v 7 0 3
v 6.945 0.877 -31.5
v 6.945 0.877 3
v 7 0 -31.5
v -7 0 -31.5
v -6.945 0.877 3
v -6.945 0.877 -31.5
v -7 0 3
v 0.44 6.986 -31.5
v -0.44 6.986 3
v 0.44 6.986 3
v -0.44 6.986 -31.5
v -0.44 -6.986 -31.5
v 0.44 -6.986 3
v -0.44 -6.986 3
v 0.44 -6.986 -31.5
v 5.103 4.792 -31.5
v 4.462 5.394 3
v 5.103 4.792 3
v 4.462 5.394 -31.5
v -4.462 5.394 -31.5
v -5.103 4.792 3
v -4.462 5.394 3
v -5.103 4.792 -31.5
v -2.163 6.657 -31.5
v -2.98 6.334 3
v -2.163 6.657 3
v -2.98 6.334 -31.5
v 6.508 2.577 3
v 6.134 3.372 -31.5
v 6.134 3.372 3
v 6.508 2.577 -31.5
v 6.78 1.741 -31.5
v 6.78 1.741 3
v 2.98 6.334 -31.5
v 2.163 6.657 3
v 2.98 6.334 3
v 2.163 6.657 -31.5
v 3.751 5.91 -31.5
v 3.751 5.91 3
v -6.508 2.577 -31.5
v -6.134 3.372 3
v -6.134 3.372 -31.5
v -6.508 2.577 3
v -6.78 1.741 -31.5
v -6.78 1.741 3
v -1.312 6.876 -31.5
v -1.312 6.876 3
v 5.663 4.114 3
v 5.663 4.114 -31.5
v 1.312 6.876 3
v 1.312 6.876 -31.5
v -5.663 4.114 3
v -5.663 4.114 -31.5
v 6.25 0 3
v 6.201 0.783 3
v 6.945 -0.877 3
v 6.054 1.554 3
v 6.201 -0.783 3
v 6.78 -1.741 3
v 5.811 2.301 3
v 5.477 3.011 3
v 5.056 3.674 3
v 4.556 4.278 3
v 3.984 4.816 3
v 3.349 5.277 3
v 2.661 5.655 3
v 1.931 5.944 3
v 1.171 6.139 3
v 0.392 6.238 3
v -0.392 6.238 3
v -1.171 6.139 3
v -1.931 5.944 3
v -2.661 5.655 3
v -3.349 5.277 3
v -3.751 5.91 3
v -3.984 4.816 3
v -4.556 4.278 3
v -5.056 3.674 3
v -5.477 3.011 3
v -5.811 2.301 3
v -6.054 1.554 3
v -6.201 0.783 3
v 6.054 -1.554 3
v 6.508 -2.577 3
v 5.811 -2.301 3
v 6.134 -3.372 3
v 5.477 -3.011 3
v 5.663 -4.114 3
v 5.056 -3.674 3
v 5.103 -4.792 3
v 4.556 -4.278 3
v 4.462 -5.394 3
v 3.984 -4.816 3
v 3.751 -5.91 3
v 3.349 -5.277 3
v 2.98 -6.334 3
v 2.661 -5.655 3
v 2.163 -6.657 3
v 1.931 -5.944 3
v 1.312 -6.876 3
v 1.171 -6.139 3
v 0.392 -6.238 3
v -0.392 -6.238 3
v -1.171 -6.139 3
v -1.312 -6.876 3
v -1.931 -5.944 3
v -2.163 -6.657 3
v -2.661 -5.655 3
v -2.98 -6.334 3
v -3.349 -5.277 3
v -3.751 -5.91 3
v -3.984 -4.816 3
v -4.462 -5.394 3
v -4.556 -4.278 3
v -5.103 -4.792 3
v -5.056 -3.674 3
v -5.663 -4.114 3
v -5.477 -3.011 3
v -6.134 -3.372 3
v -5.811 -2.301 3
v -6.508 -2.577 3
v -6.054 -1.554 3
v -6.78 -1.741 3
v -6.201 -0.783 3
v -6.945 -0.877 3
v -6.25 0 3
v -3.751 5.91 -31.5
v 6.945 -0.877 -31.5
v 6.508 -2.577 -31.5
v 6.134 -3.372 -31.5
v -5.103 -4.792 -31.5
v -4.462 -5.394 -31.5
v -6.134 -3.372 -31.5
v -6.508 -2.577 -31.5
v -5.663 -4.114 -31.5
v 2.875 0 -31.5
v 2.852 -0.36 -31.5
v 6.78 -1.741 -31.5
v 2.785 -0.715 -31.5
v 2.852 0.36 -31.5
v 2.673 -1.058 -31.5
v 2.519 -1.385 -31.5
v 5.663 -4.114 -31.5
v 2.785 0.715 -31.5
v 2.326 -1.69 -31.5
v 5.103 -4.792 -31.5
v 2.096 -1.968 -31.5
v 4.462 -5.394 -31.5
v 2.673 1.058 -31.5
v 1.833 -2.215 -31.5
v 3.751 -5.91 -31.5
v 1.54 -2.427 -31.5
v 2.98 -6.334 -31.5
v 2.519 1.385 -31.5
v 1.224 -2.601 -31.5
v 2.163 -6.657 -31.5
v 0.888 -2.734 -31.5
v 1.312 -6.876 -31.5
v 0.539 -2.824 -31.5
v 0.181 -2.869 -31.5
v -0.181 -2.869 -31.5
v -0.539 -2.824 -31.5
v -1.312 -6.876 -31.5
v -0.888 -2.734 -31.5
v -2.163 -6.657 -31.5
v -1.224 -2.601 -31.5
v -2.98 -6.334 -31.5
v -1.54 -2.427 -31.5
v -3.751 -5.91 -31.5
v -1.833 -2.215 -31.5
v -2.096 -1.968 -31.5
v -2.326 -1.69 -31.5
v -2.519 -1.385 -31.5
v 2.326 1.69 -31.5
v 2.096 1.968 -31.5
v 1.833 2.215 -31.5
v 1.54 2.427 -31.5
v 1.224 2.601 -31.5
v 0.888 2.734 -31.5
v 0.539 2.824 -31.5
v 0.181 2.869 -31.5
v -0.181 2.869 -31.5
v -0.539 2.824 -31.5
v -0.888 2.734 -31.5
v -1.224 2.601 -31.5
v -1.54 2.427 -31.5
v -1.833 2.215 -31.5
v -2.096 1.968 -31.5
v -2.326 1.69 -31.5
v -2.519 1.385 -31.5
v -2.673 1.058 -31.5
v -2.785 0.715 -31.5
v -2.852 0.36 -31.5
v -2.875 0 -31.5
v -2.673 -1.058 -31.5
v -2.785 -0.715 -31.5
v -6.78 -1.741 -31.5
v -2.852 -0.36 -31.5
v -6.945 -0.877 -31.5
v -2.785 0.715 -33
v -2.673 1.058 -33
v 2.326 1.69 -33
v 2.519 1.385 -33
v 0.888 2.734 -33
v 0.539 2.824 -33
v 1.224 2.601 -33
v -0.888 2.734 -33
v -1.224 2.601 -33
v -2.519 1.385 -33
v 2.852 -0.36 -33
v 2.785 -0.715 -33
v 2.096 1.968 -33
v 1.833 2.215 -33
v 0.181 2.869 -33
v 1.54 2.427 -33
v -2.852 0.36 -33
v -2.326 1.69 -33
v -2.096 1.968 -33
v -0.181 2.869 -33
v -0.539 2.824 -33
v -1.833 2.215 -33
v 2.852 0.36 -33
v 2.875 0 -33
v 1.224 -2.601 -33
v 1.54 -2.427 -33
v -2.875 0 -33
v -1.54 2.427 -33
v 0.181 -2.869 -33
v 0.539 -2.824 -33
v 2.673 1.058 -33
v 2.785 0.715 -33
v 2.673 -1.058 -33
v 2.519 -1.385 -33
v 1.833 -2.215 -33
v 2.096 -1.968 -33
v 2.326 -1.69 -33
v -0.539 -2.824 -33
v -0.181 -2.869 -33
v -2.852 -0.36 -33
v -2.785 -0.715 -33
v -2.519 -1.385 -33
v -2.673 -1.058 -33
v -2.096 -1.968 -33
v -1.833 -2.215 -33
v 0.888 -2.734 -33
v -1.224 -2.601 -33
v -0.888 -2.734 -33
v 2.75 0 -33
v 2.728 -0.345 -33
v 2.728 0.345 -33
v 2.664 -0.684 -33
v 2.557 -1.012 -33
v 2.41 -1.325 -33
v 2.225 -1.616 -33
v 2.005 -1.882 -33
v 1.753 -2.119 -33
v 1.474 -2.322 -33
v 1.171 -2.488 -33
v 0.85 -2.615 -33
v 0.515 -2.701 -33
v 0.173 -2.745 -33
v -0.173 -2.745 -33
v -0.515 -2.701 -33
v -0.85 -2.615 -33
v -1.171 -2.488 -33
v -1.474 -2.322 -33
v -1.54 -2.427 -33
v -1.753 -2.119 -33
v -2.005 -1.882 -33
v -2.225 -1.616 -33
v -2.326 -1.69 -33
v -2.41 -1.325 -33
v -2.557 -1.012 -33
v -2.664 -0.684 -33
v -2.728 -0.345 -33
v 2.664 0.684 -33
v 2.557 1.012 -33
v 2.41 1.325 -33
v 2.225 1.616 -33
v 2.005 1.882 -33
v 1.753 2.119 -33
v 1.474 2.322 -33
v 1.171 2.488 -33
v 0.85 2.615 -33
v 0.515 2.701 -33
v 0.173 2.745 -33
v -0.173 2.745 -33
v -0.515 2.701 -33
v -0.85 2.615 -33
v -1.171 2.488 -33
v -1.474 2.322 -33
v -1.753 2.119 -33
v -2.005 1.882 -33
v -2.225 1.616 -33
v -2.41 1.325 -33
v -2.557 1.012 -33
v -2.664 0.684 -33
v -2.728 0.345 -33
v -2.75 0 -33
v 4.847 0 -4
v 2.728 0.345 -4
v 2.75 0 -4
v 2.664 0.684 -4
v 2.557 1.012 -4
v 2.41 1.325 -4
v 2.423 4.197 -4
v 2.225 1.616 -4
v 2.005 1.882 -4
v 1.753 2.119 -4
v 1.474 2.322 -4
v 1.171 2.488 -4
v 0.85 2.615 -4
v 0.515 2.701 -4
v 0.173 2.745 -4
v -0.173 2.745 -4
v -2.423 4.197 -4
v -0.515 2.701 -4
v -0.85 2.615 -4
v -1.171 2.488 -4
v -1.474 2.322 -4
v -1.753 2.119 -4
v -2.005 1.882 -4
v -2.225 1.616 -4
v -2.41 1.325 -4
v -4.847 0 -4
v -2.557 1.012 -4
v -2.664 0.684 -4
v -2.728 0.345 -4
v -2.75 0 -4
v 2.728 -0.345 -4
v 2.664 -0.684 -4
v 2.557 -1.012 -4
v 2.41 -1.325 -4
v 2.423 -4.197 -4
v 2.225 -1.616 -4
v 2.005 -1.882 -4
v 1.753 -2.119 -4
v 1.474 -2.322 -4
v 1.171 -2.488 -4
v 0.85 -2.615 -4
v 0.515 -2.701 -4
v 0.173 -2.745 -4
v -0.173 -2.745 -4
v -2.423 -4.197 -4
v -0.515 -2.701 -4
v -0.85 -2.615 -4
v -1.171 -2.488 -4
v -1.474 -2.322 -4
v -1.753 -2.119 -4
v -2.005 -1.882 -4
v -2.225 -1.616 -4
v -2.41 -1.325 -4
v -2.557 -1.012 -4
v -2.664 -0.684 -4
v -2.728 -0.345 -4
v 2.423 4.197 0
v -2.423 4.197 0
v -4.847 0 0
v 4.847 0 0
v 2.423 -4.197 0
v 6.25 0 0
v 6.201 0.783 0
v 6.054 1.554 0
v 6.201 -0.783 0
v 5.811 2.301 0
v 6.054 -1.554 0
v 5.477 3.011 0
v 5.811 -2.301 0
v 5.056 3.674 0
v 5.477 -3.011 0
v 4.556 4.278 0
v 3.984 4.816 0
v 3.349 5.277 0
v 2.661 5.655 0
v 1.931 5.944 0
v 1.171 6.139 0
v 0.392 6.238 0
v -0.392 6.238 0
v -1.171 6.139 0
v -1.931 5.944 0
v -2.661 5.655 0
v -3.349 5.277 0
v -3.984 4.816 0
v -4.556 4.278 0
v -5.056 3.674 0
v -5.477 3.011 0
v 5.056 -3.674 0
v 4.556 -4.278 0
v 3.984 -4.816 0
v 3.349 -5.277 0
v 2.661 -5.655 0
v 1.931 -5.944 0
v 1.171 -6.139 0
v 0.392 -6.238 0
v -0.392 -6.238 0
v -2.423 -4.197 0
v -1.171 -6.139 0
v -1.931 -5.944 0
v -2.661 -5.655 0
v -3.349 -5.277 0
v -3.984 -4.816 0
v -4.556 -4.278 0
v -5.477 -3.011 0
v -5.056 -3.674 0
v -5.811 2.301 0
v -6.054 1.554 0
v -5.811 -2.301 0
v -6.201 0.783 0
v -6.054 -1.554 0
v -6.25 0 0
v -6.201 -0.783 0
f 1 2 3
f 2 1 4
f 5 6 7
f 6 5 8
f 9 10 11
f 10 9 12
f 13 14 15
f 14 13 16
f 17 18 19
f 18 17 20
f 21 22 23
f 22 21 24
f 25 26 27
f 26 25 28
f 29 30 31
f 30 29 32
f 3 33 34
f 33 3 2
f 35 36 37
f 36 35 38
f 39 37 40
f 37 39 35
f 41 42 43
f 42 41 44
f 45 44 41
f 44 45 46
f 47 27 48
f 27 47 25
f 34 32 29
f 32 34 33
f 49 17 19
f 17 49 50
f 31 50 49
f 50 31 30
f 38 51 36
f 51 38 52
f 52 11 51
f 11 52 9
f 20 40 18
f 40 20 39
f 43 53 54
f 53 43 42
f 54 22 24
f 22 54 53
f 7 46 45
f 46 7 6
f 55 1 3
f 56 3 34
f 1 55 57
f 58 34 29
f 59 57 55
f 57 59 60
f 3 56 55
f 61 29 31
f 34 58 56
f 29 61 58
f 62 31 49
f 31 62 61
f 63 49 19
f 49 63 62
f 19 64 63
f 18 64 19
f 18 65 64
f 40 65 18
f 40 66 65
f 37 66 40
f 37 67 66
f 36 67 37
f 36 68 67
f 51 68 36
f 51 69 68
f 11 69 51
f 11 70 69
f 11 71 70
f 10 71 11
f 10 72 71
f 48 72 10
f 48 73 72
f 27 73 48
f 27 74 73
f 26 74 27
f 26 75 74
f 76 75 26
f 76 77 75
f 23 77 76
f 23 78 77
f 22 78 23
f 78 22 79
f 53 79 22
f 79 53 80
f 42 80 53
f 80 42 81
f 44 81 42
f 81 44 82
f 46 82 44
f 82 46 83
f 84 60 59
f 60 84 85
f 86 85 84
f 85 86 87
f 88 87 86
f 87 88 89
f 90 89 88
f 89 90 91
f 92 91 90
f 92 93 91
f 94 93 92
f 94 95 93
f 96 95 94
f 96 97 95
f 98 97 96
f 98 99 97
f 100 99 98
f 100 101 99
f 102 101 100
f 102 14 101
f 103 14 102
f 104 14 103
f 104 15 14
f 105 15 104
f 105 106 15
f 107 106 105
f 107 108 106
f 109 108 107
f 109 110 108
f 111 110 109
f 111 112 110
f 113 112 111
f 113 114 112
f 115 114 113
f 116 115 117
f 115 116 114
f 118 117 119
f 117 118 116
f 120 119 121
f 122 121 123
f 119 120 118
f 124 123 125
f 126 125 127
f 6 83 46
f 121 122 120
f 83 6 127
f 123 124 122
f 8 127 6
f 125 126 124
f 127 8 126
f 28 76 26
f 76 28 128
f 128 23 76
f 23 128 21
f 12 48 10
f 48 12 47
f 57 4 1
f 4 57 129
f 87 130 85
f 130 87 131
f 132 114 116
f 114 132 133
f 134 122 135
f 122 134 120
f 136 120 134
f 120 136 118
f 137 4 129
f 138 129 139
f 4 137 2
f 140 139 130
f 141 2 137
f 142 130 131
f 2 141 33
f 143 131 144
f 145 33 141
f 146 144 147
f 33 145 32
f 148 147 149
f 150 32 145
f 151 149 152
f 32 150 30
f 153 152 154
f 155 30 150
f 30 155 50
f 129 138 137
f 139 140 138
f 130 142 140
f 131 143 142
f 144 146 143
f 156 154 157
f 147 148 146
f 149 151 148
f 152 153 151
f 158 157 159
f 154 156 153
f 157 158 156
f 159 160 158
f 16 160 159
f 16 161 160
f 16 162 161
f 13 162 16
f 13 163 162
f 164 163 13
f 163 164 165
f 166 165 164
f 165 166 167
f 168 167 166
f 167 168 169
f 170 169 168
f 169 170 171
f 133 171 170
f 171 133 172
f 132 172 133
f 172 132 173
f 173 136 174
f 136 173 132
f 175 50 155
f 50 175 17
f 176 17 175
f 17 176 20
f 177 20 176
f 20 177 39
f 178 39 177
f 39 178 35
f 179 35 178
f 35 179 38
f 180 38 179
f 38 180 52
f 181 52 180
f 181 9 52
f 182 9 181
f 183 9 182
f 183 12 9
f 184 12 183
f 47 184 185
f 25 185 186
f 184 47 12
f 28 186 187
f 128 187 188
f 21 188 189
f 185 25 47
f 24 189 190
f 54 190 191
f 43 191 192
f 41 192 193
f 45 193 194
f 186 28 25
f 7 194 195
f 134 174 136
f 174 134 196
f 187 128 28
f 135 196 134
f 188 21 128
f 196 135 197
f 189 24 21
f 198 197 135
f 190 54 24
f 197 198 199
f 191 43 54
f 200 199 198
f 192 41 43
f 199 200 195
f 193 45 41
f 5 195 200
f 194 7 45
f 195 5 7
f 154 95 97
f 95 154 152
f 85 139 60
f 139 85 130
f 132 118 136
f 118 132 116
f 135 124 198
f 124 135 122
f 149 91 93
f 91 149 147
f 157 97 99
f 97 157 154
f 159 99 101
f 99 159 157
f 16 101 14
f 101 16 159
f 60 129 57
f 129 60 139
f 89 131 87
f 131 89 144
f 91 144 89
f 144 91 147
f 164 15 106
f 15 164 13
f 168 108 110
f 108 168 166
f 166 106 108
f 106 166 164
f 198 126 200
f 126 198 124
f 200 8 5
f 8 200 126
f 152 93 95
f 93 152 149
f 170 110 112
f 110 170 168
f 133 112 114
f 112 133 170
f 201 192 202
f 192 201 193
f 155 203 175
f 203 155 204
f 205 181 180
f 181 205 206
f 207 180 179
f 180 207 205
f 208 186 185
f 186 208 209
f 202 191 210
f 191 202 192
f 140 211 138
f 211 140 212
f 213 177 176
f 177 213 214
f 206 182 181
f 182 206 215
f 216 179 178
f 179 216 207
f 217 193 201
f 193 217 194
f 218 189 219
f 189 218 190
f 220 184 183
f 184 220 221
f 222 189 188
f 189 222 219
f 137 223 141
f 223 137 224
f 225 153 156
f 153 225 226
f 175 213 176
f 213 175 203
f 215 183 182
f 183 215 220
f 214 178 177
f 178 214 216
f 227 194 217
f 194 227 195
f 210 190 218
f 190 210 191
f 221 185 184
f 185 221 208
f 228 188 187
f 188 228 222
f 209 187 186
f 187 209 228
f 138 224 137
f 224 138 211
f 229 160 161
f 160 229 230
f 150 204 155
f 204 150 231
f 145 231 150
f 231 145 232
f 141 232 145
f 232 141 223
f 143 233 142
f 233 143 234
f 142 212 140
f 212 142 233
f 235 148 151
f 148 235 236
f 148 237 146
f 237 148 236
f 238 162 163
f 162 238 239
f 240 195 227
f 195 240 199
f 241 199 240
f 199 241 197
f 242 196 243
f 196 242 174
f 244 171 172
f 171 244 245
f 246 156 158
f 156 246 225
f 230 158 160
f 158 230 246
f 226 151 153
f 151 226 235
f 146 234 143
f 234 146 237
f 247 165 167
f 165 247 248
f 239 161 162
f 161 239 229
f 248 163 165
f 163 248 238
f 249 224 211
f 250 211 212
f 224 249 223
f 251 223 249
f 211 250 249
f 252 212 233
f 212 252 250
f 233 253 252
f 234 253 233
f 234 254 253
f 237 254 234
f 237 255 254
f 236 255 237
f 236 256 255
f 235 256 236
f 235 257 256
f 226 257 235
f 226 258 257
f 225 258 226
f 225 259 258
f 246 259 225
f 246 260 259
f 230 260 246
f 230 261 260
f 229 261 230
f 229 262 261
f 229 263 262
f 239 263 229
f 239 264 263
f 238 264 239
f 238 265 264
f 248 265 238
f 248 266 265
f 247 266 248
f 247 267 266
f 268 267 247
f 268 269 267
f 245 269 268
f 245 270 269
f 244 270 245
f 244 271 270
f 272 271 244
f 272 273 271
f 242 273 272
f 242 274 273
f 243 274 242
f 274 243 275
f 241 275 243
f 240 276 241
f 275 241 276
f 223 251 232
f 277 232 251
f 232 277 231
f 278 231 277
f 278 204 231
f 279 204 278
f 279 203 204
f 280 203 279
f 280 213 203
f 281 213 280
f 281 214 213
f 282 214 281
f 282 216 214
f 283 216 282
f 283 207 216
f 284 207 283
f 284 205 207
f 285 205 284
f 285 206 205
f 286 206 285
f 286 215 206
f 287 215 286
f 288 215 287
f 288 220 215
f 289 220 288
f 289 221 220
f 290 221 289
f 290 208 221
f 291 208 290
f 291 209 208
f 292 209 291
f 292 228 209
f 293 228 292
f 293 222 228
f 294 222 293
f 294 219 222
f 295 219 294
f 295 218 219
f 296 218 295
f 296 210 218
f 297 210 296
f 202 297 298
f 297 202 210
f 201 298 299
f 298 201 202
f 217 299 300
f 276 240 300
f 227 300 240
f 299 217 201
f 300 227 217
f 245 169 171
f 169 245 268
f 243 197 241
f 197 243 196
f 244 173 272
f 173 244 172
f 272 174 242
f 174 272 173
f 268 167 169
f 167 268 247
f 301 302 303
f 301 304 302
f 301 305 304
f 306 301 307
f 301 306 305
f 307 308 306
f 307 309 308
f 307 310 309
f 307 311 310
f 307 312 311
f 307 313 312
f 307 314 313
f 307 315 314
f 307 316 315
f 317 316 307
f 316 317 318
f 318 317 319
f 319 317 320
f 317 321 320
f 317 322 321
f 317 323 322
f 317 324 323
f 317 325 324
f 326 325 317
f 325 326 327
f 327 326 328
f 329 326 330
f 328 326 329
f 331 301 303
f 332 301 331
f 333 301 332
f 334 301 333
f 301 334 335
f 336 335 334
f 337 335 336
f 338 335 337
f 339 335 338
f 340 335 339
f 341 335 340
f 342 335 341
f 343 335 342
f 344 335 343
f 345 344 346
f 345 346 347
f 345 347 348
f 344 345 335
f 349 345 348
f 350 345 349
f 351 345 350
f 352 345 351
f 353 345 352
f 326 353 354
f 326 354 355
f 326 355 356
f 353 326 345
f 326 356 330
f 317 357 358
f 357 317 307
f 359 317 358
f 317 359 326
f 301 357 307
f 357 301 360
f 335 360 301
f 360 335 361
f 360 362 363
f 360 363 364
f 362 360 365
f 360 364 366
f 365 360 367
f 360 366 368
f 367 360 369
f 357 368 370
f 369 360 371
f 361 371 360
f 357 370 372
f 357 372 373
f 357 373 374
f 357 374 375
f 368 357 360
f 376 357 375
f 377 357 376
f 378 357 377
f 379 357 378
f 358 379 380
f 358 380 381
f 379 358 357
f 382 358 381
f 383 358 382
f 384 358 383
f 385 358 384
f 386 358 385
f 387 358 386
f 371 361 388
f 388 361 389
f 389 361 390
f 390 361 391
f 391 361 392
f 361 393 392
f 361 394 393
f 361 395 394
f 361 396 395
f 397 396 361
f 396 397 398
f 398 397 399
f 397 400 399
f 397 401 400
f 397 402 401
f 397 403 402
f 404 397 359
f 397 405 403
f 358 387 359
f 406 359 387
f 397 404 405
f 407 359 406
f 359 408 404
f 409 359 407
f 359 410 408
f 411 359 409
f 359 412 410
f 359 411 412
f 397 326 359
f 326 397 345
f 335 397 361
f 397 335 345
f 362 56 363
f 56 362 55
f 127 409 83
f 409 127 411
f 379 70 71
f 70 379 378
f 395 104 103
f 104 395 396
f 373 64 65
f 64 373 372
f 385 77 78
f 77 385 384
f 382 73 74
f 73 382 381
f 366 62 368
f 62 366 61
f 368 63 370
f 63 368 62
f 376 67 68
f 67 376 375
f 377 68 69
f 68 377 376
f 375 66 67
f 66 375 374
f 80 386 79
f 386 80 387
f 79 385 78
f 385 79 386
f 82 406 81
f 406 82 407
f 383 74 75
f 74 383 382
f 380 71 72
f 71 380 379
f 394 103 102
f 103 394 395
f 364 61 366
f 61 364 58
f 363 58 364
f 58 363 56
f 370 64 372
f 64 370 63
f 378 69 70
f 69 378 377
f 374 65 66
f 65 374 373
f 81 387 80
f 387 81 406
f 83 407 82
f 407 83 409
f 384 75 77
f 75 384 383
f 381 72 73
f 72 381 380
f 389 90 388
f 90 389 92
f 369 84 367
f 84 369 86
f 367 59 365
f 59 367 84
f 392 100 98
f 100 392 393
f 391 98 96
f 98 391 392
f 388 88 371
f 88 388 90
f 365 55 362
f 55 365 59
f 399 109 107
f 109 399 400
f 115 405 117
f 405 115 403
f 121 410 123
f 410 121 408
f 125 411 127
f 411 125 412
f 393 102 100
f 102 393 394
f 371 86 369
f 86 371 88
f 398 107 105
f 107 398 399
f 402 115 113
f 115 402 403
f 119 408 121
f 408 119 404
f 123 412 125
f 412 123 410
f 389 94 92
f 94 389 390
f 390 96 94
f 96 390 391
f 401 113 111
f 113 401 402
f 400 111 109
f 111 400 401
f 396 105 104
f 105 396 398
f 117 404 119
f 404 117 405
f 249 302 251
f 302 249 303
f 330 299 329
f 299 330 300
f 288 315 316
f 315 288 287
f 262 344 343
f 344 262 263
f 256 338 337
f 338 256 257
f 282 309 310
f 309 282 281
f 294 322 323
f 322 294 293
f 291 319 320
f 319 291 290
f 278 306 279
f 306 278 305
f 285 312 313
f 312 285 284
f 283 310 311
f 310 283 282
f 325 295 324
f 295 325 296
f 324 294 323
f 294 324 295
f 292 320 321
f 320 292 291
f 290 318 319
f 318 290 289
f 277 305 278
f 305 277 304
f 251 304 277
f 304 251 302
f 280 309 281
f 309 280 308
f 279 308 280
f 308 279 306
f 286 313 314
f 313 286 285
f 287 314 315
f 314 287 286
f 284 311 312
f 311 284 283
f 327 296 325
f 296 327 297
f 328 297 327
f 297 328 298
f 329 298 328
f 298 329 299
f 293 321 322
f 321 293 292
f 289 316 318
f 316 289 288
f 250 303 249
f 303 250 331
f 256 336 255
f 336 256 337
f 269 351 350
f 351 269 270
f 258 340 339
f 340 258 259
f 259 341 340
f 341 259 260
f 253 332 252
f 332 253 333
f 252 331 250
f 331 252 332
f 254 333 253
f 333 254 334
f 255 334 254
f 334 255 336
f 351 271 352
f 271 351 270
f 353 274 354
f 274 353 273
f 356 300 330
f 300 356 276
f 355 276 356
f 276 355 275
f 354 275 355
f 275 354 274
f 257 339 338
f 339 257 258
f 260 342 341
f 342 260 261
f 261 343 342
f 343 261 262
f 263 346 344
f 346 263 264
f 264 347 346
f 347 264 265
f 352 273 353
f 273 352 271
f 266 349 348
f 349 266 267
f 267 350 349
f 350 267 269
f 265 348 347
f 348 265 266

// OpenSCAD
$fn = 50;

difference() {
	union() {
		translate(v = [0, 0, -31.5]) {
			cylinder(h = 34.5, r = 7.0);
		}
		#translate(v = [0, 0, -33.0]) {
			cylinder(h = 33, r = 2.875);
		}
	}
	union() {
		translate(v = [0, 0, 0]) {
			rotate(a = [0, 0, 0]) {
				difference() {
					union() {
						translate(v = [0, 0, -4]) {
							linear_extrude(height = 4) {
								polygon(points = [[4.8468, 0.0], [2.4234000000000004, 4.197451927062417], [-2.423399999999999, 4.197451927062417], [-4.8468, 5.935618106107392e-16], [-2.423400000000002, -4.197451927062416], [2.423399999999997, -4.197451927062419]]);
							}
						}
					}
					union();
				}
			}
		}
		#cylinder(h = 3, r = 6.25);
		#translate(v = [0, 0, -100.0]) {
			cylinder(h = 200, r = 2.75);
		}
	}
}
